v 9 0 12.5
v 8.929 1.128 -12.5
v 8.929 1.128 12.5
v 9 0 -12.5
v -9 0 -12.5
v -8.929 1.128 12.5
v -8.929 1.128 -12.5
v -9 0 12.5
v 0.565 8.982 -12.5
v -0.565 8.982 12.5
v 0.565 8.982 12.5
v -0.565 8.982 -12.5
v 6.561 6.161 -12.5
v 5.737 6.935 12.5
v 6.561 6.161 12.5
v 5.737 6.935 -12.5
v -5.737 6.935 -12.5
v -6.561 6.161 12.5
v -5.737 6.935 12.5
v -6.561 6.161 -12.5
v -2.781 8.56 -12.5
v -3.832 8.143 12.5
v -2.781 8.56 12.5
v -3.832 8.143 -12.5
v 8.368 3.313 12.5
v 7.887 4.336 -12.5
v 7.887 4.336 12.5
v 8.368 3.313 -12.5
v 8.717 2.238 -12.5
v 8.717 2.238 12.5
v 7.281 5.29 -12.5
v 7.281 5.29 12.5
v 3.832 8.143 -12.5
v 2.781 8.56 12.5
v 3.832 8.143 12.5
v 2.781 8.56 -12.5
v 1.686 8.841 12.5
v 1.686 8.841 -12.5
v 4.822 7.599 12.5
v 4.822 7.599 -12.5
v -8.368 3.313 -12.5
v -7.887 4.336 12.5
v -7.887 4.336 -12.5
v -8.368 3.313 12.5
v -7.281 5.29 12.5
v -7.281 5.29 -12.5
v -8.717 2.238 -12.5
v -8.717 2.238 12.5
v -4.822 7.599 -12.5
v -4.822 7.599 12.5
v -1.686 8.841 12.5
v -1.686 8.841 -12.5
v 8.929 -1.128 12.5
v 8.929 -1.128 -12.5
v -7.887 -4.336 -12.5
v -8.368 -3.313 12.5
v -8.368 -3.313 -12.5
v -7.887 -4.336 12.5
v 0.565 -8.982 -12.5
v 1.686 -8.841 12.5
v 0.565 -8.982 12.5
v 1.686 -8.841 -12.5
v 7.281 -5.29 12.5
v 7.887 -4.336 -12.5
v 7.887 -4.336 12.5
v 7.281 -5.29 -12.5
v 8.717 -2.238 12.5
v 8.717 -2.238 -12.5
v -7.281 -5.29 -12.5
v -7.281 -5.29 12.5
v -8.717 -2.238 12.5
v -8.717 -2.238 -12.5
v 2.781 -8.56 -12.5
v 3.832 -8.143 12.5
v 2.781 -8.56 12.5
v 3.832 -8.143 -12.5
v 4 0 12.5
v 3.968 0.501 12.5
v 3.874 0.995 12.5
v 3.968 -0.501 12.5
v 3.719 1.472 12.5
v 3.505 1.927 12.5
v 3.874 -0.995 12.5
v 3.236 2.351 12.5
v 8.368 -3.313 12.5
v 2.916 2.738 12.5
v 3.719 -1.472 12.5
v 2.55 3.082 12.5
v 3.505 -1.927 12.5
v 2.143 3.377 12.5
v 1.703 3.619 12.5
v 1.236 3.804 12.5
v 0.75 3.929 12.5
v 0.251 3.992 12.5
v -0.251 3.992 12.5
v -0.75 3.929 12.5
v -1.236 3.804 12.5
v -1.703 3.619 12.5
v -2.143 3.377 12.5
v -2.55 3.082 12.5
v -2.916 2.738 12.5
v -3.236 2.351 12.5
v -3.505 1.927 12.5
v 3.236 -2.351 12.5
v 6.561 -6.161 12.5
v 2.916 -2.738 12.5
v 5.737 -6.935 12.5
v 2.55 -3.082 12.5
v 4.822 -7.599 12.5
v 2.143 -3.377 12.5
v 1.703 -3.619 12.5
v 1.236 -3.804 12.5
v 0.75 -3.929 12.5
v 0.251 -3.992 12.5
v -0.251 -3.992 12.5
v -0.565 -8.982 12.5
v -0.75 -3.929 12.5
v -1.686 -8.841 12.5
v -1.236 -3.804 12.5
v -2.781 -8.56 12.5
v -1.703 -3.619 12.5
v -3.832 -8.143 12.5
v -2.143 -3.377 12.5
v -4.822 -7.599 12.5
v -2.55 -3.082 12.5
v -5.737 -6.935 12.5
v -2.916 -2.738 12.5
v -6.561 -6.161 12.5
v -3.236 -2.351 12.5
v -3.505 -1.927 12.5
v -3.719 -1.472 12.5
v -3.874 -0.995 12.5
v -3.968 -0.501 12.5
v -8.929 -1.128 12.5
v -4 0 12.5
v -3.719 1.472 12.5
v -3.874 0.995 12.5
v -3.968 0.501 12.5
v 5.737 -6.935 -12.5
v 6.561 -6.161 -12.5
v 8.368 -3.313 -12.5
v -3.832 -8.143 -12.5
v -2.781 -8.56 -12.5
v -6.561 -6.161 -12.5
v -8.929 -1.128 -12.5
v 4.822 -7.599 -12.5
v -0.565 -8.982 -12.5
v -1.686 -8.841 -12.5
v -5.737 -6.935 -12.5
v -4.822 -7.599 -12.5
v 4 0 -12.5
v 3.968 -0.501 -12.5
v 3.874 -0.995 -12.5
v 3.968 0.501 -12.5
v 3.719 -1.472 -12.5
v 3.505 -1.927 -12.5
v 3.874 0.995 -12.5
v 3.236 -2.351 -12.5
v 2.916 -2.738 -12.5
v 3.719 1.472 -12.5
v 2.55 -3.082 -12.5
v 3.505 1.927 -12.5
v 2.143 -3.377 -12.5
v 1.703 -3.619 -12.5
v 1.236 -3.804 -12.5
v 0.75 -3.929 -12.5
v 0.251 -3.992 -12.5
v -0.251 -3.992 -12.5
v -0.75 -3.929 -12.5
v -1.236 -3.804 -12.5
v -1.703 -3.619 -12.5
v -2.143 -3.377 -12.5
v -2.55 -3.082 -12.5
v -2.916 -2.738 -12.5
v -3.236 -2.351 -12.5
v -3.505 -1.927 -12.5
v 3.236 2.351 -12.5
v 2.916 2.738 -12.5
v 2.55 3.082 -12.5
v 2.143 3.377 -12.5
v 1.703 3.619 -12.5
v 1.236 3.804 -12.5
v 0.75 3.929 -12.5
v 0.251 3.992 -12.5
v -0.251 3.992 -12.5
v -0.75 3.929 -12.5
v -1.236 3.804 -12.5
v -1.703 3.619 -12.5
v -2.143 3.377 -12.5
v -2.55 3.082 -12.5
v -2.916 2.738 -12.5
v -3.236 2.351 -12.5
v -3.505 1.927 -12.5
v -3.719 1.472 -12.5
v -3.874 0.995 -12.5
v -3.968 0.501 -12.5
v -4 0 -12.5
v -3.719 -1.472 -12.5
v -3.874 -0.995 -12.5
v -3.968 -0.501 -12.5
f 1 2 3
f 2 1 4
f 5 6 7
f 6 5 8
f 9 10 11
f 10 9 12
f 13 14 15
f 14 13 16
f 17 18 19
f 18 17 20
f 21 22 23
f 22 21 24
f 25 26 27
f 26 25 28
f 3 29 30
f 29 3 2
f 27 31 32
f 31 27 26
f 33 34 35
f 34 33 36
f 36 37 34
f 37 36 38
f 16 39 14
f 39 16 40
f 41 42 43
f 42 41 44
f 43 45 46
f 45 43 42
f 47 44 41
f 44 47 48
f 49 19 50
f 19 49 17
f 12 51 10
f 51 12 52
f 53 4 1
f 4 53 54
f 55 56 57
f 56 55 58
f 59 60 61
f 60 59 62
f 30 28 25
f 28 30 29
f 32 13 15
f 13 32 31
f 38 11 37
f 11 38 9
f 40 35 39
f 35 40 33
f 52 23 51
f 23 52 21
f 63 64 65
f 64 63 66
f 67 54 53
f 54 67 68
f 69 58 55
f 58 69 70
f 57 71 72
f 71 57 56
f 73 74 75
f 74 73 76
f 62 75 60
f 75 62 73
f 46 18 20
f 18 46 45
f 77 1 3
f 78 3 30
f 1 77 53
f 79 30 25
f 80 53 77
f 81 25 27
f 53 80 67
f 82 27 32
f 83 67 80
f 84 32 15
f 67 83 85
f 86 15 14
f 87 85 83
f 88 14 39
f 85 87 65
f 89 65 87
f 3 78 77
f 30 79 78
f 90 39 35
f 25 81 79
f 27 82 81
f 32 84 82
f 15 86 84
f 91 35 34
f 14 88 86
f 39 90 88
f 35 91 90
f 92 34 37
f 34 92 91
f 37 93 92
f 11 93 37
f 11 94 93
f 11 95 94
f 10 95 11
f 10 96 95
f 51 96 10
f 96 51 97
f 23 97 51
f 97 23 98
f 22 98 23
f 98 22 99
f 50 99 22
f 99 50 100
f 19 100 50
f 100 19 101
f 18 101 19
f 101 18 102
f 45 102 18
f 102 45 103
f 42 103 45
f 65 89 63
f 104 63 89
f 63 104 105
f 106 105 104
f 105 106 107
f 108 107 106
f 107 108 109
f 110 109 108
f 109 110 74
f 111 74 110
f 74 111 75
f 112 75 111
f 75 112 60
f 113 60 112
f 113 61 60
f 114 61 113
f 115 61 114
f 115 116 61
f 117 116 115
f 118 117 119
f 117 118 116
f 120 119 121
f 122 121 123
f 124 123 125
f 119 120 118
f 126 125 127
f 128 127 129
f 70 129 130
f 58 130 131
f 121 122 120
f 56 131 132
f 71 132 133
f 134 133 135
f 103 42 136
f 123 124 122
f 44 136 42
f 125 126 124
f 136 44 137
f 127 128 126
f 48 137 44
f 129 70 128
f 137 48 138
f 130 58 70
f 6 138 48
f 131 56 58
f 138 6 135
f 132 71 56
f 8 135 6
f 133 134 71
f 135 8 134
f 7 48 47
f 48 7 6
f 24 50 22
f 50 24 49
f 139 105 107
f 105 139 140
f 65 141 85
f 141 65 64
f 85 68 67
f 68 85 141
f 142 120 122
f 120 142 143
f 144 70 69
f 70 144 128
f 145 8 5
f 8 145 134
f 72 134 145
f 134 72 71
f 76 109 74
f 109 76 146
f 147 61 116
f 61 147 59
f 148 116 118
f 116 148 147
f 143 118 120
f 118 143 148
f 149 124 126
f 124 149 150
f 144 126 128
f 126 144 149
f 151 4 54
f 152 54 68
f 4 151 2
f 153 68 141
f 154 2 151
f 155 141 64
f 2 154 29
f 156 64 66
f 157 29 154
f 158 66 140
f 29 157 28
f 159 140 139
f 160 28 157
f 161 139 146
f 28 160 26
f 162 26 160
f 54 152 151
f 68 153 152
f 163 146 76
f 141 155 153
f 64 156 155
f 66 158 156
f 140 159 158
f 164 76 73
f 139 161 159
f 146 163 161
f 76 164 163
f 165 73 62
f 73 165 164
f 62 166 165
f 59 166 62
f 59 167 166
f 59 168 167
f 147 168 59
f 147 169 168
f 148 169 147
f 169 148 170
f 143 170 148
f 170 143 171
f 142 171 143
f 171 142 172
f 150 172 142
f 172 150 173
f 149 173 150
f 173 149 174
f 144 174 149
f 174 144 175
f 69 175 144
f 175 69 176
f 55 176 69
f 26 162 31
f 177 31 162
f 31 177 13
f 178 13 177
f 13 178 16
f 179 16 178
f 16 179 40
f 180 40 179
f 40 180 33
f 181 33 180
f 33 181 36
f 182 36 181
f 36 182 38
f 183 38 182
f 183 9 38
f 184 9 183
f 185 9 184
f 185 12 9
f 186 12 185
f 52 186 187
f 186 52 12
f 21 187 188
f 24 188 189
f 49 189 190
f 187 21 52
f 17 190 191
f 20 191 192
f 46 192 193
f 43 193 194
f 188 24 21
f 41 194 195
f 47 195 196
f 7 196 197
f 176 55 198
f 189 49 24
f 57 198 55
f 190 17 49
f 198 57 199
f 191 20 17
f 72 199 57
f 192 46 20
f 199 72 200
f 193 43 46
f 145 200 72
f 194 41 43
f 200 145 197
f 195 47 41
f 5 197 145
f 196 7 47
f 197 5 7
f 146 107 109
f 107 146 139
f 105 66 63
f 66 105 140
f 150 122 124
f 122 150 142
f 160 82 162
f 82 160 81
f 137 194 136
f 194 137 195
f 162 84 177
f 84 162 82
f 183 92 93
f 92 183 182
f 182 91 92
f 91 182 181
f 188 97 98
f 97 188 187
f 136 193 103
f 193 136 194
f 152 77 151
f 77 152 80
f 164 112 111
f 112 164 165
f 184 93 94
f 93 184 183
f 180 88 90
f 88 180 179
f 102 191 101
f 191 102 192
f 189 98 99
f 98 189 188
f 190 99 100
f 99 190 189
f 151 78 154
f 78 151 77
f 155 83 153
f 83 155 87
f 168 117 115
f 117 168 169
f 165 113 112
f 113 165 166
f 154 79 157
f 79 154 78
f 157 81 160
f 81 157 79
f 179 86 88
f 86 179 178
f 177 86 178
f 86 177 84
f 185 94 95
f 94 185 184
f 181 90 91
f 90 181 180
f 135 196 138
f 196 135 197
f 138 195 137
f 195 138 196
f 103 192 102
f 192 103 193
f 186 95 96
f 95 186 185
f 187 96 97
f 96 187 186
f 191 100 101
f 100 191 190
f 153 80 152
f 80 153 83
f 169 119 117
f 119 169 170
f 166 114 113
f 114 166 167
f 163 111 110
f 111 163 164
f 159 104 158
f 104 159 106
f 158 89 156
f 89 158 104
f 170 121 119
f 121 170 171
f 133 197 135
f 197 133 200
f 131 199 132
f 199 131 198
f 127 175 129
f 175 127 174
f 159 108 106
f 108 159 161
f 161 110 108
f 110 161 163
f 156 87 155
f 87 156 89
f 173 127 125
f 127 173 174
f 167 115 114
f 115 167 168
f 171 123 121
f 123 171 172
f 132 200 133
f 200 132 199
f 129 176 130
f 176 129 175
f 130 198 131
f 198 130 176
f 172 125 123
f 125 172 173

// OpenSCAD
$fn = 50;


difference() {
	union() {
		translate(v = [0, 0, -12.5000000000]) {
			cylinder(h = 25, r = 9.0000000000);
		}
	}
	union() {
		translate(v = [0, 0, -100.0000000000]) {
			cylinder(h = 200, r = 4.0000000000);
		}
	}
}
